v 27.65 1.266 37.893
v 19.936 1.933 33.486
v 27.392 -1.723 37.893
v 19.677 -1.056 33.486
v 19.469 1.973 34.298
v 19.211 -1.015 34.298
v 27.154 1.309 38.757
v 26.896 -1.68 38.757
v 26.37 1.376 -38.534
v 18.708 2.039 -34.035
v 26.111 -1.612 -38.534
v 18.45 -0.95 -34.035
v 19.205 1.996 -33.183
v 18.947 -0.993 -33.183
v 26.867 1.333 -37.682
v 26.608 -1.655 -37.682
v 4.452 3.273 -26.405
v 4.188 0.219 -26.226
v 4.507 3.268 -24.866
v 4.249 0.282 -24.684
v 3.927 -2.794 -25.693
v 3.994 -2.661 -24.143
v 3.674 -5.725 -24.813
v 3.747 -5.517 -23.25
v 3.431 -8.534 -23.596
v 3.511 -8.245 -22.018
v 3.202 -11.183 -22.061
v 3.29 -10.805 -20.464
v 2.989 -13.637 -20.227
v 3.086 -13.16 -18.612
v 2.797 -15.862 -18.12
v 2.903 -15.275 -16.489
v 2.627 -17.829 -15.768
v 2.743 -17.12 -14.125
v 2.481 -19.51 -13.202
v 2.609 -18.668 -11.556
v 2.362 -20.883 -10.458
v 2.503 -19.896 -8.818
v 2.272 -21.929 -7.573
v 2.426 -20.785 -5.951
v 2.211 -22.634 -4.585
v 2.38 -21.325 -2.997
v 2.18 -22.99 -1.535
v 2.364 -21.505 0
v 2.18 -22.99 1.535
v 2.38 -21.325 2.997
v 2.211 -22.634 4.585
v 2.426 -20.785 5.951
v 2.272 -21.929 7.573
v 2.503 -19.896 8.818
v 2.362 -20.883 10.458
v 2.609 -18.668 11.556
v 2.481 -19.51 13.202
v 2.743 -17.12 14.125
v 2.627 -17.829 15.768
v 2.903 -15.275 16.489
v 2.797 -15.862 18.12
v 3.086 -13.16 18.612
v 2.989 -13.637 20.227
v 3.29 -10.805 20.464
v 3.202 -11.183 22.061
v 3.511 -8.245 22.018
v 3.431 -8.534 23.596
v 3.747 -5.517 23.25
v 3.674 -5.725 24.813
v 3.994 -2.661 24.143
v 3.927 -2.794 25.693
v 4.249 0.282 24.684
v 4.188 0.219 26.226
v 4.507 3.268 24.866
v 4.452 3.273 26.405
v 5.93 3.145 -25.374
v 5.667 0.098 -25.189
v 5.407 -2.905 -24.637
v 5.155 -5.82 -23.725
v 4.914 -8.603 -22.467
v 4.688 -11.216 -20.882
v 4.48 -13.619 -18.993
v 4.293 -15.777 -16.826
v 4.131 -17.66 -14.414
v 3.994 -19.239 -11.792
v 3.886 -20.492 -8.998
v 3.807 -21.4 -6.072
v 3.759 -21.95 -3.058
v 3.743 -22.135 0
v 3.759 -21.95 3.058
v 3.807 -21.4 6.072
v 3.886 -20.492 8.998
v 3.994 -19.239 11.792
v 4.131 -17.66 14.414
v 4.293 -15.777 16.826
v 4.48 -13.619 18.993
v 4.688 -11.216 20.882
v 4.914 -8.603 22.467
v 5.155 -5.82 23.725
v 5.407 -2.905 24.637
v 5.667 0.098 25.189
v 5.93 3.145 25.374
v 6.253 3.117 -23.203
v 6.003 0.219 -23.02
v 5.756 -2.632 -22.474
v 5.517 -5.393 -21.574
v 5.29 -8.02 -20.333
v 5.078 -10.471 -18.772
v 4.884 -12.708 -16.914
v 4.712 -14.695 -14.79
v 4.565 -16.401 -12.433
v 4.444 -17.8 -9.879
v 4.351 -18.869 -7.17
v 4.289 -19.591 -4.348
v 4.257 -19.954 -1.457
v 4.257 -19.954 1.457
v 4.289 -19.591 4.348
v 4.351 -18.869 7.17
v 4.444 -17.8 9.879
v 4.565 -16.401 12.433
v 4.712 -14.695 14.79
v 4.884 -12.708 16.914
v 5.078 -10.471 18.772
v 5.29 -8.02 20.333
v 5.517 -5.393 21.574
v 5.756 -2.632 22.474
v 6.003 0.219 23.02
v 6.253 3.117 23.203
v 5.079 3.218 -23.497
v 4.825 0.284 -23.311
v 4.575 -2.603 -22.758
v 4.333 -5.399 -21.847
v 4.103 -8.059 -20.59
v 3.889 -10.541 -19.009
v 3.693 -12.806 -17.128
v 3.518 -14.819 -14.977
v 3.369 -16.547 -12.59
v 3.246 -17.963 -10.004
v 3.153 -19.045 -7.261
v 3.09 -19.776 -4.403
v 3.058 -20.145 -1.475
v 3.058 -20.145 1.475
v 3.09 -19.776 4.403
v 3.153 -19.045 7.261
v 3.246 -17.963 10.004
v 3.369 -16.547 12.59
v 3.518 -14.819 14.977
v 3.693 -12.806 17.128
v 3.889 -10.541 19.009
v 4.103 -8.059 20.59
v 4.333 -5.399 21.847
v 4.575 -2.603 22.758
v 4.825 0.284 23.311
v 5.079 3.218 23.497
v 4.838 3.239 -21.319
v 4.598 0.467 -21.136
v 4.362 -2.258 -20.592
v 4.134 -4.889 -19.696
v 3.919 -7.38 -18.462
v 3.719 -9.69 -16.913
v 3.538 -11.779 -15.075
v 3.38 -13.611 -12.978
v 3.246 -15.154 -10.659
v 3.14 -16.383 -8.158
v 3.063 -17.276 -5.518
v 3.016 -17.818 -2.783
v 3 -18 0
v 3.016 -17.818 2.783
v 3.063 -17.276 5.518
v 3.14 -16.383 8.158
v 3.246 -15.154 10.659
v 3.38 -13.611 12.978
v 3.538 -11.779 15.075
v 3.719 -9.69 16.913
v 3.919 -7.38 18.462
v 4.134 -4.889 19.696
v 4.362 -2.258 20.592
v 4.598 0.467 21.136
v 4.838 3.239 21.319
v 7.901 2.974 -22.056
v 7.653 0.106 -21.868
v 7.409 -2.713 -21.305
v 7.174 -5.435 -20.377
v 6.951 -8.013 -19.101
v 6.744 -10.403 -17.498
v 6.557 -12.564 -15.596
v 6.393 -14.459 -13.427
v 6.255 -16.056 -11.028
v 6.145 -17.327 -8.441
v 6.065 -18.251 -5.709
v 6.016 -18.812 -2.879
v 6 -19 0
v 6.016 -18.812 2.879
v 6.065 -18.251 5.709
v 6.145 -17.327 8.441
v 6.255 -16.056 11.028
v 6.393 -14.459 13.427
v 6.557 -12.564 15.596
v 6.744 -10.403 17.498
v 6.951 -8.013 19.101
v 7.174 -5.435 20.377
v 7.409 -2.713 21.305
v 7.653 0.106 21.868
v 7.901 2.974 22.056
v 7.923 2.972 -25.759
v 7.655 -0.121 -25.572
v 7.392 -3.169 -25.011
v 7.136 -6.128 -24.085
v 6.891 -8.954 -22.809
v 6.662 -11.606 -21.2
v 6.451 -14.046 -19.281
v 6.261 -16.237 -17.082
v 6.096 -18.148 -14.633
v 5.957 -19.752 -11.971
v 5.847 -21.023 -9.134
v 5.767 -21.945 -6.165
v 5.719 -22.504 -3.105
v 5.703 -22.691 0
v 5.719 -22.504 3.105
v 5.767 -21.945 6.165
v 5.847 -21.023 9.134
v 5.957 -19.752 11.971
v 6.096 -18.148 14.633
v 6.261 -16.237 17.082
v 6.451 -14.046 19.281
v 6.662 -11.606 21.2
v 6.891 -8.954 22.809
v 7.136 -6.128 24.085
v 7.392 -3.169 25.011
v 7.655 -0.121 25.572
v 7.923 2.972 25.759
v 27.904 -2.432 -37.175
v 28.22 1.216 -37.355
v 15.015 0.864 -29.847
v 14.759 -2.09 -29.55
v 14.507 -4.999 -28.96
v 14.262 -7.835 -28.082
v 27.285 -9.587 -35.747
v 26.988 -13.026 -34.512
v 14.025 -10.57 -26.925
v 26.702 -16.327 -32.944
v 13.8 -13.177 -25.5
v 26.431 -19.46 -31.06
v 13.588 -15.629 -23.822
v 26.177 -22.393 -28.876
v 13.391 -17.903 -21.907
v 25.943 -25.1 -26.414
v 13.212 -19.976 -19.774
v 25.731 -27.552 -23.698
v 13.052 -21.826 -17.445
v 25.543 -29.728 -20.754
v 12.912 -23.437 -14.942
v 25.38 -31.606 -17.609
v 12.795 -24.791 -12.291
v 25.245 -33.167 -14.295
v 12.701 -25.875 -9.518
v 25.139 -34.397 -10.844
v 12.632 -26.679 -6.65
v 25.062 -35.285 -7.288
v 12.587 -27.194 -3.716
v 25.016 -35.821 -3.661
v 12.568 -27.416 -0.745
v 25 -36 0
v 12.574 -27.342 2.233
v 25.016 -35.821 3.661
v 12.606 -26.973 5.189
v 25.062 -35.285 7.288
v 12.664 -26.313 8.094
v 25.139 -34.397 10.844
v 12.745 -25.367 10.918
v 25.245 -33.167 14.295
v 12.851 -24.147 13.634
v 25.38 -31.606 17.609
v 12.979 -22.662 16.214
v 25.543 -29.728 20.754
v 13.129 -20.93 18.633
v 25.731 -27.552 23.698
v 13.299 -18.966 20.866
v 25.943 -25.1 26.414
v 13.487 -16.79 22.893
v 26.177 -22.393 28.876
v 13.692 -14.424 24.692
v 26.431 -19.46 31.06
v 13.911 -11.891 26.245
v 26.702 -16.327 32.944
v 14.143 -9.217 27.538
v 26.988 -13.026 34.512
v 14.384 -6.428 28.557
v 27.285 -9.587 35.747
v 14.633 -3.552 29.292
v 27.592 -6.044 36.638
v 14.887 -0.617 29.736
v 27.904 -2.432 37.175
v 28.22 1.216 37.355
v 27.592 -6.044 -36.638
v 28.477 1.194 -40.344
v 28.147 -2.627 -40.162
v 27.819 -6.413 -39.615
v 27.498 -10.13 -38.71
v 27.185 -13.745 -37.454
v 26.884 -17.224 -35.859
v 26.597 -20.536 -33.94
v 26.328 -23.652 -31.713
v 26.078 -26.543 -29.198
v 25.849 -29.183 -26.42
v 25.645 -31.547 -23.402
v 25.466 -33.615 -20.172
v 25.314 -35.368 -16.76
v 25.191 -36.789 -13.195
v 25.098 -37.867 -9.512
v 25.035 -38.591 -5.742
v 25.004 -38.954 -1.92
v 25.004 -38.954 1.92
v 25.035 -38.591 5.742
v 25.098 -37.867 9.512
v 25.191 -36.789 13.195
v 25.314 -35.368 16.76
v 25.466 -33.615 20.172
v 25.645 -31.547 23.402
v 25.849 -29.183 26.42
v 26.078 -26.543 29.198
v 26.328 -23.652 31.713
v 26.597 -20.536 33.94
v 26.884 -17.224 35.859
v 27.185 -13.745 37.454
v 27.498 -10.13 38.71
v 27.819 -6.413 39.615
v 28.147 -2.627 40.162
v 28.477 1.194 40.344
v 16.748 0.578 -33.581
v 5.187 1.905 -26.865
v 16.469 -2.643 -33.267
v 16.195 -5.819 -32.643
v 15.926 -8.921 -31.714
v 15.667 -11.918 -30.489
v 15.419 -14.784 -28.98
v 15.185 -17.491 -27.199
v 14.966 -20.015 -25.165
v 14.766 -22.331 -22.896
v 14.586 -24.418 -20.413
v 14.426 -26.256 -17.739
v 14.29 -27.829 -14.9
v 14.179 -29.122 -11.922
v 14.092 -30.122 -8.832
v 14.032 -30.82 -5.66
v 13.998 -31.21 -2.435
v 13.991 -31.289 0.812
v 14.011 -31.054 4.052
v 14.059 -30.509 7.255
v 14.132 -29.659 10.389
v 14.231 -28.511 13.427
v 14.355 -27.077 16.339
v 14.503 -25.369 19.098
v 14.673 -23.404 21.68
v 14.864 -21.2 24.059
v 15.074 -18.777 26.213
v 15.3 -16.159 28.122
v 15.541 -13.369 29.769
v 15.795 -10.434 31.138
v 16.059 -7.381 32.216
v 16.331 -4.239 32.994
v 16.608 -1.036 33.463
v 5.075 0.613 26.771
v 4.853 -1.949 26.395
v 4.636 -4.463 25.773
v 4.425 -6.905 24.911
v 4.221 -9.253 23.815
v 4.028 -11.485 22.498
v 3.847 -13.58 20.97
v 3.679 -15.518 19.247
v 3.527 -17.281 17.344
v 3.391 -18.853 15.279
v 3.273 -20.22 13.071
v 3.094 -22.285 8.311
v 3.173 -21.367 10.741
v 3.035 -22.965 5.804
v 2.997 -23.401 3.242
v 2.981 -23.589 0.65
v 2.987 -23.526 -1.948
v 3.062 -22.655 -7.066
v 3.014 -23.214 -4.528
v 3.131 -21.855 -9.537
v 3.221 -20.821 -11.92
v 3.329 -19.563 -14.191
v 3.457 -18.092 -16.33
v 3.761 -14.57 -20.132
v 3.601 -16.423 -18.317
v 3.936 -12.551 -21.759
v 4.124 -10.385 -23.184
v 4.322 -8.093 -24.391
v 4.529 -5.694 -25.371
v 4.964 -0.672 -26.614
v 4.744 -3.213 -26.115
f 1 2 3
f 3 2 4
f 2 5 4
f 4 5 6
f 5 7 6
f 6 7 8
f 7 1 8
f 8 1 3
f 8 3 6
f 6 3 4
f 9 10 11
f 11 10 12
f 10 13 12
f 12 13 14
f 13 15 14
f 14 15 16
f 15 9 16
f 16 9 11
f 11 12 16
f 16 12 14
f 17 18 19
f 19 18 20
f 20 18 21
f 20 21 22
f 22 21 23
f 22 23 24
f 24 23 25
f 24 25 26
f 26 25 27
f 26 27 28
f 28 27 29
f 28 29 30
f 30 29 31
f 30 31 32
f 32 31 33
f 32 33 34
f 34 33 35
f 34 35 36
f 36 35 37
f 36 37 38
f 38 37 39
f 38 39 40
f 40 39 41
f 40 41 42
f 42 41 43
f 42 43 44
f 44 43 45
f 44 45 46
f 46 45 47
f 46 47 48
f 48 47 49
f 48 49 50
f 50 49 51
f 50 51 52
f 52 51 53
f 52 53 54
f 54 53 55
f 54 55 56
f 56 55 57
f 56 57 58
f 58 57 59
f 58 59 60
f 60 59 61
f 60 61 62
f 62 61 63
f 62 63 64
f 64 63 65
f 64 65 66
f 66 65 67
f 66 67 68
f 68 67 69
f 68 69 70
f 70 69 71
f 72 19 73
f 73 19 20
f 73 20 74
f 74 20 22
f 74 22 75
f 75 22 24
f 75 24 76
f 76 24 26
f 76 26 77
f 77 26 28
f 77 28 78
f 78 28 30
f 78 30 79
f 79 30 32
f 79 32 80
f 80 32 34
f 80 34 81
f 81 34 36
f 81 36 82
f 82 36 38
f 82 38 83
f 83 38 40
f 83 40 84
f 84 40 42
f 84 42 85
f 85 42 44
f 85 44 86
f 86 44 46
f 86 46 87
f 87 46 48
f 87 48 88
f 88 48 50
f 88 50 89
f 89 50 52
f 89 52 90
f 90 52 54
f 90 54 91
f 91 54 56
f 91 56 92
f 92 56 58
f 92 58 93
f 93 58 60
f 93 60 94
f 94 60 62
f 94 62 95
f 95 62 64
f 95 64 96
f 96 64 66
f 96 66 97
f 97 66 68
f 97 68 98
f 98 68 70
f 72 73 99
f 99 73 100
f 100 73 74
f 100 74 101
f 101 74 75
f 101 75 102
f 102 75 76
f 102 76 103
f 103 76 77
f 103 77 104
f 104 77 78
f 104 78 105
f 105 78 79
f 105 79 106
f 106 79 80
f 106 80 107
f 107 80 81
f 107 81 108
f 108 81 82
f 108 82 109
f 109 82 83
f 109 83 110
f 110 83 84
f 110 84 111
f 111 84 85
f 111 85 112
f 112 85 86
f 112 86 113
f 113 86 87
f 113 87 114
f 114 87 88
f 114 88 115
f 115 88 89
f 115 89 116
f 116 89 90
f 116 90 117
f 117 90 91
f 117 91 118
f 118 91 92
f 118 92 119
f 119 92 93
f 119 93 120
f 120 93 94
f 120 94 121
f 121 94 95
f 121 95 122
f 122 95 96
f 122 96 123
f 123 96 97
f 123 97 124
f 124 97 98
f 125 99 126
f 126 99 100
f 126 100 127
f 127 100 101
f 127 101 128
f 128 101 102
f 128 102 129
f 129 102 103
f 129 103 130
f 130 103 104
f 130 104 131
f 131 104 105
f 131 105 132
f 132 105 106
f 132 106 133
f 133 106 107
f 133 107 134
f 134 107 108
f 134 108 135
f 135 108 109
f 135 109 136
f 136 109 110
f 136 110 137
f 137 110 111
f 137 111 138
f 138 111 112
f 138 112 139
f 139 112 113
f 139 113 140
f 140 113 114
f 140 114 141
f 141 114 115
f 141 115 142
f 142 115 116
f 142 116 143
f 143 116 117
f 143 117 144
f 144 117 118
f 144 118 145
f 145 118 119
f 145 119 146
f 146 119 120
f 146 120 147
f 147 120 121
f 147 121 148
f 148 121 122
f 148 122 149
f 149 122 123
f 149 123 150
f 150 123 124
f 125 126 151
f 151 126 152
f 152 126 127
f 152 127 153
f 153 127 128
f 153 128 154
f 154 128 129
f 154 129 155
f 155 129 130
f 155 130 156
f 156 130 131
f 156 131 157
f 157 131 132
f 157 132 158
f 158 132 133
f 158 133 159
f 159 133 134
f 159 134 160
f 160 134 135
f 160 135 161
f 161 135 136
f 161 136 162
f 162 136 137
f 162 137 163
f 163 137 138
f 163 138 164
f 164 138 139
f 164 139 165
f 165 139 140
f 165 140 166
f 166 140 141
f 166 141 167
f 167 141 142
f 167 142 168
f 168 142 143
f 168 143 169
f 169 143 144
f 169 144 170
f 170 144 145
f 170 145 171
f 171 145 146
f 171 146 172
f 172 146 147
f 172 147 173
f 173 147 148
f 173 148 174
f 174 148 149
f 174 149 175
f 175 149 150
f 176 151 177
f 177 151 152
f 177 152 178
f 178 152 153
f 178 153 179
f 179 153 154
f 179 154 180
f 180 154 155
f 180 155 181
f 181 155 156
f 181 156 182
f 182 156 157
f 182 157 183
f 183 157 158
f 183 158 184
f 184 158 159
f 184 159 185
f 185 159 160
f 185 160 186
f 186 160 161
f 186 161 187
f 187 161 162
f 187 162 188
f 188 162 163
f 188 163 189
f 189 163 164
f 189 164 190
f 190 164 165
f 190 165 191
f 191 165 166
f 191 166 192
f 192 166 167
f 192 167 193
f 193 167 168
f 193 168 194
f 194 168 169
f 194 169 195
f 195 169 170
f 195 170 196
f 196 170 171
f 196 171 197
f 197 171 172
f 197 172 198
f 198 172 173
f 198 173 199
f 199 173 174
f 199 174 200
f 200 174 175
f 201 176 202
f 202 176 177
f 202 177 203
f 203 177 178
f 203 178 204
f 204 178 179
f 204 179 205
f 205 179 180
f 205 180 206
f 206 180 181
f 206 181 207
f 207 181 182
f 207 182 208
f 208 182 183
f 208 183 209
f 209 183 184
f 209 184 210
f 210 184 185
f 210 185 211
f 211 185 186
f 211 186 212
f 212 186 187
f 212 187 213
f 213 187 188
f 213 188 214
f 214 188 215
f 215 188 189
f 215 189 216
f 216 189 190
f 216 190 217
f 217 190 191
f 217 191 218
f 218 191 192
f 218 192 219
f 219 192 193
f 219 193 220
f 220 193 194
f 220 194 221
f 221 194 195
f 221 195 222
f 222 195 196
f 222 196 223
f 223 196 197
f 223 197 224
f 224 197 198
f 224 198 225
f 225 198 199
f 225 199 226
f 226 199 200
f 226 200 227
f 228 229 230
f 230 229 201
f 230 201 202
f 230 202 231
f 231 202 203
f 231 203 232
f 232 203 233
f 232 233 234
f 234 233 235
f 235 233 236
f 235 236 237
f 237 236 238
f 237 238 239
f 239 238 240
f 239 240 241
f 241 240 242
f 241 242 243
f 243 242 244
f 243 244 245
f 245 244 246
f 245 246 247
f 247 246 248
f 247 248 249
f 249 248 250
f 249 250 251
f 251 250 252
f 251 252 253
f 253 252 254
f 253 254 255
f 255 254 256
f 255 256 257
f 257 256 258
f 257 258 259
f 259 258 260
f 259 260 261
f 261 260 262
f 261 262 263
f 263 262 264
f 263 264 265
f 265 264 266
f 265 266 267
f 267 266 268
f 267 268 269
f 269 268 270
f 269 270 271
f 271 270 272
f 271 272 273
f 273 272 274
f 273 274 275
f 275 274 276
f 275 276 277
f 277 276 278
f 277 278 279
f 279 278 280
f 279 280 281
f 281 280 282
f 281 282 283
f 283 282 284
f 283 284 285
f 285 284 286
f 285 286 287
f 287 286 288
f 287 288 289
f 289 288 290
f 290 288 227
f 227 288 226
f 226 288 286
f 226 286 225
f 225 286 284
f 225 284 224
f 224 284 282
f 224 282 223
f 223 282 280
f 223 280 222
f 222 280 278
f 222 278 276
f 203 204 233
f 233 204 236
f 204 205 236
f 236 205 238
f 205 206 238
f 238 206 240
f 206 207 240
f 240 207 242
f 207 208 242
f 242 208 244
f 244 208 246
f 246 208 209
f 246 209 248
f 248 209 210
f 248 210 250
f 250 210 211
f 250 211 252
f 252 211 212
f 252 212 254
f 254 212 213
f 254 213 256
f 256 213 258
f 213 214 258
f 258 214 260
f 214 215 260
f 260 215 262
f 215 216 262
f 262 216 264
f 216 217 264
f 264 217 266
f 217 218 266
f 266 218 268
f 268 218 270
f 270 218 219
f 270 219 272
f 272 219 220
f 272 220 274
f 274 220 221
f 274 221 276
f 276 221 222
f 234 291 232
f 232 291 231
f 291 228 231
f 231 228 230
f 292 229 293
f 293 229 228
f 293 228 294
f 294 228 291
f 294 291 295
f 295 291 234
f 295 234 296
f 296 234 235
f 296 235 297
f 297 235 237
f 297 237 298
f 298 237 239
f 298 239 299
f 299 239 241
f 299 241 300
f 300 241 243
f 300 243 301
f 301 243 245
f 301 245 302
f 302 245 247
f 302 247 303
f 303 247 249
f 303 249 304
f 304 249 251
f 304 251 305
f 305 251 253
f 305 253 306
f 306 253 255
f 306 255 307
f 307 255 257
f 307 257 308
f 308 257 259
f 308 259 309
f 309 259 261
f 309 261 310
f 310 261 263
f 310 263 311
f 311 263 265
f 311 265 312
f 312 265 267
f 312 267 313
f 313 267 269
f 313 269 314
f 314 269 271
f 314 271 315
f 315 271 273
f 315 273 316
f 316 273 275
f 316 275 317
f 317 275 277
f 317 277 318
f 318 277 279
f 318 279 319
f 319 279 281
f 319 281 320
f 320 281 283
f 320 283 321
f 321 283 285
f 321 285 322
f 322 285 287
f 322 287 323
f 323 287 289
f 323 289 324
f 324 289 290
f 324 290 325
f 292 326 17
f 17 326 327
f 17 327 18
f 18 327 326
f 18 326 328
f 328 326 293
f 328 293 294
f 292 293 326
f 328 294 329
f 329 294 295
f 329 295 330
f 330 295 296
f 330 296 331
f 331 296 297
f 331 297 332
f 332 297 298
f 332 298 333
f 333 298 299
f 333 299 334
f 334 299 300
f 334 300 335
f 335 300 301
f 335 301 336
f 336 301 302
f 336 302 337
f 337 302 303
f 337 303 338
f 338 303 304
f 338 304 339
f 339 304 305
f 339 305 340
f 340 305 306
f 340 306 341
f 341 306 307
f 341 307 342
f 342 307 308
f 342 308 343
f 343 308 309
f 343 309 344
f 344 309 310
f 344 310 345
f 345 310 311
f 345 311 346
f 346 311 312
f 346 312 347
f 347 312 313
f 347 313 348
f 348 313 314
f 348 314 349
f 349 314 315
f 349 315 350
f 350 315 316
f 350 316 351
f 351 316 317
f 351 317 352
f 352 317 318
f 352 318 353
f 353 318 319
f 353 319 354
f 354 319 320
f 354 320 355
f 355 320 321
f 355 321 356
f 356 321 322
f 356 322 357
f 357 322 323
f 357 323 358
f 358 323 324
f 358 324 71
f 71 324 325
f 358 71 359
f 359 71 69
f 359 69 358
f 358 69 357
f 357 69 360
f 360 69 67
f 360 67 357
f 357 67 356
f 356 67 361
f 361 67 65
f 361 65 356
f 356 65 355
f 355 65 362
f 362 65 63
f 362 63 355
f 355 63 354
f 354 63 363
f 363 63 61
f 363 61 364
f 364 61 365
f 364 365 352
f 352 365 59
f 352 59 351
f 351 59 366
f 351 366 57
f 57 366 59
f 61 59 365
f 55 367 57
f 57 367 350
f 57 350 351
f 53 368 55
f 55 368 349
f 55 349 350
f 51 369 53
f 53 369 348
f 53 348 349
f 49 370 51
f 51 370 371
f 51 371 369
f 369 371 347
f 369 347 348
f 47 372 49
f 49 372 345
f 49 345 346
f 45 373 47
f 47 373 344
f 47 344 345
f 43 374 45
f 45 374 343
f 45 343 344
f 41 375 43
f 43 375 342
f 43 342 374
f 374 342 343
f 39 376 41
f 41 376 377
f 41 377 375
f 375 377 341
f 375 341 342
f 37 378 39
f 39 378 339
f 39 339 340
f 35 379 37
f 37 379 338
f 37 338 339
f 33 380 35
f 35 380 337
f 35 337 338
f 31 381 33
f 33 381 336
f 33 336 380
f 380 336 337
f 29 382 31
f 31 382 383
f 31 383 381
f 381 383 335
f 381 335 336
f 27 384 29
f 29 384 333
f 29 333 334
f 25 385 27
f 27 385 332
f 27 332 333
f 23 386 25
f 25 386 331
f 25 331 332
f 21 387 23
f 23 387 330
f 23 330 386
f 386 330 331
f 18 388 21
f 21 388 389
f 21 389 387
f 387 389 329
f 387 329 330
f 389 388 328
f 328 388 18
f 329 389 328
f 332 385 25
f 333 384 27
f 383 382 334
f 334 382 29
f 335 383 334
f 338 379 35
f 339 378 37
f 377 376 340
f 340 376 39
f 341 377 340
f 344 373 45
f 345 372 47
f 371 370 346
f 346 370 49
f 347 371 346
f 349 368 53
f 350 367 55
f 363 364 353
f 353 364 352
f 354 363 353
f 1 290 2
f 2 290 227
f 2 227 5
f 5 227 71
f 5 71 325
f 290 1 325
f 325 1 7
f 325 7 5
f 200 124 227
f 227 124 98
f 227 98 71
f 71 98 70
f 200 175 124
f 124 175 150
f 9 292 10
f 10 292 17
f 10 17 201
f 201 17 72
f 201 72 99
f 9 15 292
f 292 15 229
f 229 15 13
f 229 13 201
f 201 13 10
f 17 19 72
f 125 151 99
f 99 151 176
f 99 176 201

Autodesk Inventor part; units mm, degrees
ref_plane "YZ Plane" through (0, 0, 0) normal (1, 0, 0) x (0, 1, 0)
ref_plane "XZ Plane" through (0, 0, 0) normal (0, 1, 0) x (-1, 0, 0)
ref_plane "XY Plane" through (0, 0, 0) normal (0, 0, 1) x (1, 0, 0)
sketch "Sketch1" plane through (0, 0, 0) normal (1, 0, 0) x (0, 1, 0)
  arc A0 (6, 5) -> (0, 6.4776) centre (1.5083, -0.3184) ccw
  arc A1 (0, 6.4776) -> (-6, 2) centre (-0.0372, 0.2686) ccw
  arc A2 (-6, 2) -> (-5, -3.4628) centre (-1.5043, 0) ccw
  arc A3 (-5, -3.4628) -> (2, -5.5969) centre (1.6627, 5.8444) ccw
  arc A4 (2, -5.5969) -> (6.9353, -3.4628) centre (1.5482, 2.2219) ccw
  arc A5 (6, 5) -> (13, 1) centre (22.0402, 24.9454) ccw
  arc A6 (13, -1) -> (6.9353, -3.4628) centre (16.5953, -18.5517) ccw
  arc A7 (13, -1) -> (13, 1) centre (11.912, 0) ccw
  arc A8 (15.1251, -1.2068) -> (15.1251, 1.1192) centre (13.8597, -0.0438) ccw
  arc A9 (6.9841, 5.7712) -> (15.1251, 1.1192) centre (25.6388, 28.9677) ccw
  arc A10 (6.9841, 5.7712) -> (0.0061, 7.4897) centre (1.7602, -0.414) ccw
  arc A11 (0.0061, 7.4897) -> (-6.9719, 2.2822) centre (-0.0372, 0.2686) ccw
  arc A12 (-6.9719, 2.2822) -> (-5.8089, -4.0711) centre (-1.7435, -0.0438) ccw
  arc A13 (-5.8089, -4.0711) -> (2.3321, -6.5529) centre (1.9397, 6.7532) ccw
  arc A14 (2.3321, -6.5529) -> (8.0718, -4.0711) centre (1.8067, 2.5403) ccw
  arc A15 (15.1251, -1.2068) -> (8.0718, -4.0711) centre (19.3063, -21.6193) ccw
  point P0 (0, 0)
sketch "Sketch2" plane through (0, 0, 0) normal (0, 0, 1) x (1, 0, 0)
  arc A0 (4.5893, 15.6275) -> (5.3653, 12.7341) centre (8.4769, 15.1194) ccw
  arc A1 (7.1334, 6.0475) -> (5.3653, 12.7341) centre (-9.3019, 5.2787) ccw
  arc A2 (4, -1) -> (7.1334, 6.0475) centre (-2.3212, 6.0308) ccw
  arc A3 (4, -1) -> (2.2783, -7.605) centre (15.174, -7.4395) ccw
  arc A4 (4.5893, 15.6275) -> (-5.4042, 15.6275) centre (-0.4074, 13.9881) ccw
  arc A5 (-4.7137, -7.4395) -> (2.2783, -7.605) centre (-1.0169, 0.9638) ccw
  arc A6 (-5.4042, 15.6275) -> (-4.7137, -7.4395) centre (15.8945, 4.7212) ccw
  point P0 (0, 0)
  point P1 (16.0644, 6.0537)
sketch "Sketch3" plane through (0, 0, 0) normal (0, 0, 1) x (1, 0, 0)
  line L0 (8, 6) -> (8, -9.7213)
  line L1 (8, 6) -> (8, 19.0901)
  arc A0 (8, -9.7213) -> (8, 19.0901) centre (-3.1204, 4.6844) ccw
  point P0 (0, 0)
sketch "Sketch4" plane through (0, 0, 0) normal (0, 0, 1) x (1, 0, 0)
  arc A0 (4, -3) -> (3, -7.466) centre (10.199, -6.733) ccw
  arc A1 (4, -3) -> (7.6292, 3.7812) centre (-12.6955, 10.297) ccw
  arc A2 (7.6292, 3.7812) -> (7, 11) centre (-7.2238, 6.1234) ccw
  arc A3 (7, 11) -> (6.1482, 13) centre (-7.2238, 6.1234) ccw
  arc A4 (5.3976, 15.5783) -> (6.1482, 13) centre (8.6756, 15.1342) ccw
  arc A5 (3, -7.466) -> (9, -9) centre (8, -0.4104) ccw
  arc A6 (11, 18) -> (5.3976, 15.5783) centre (10.5, 11.4654) ccw
  arc A7 (9, -9) -> (11, 18) centre (-69.2967, 10.3738) ccw
  point P0 (0, 0)
sketch "Sketch5" plane through (0, 0, 0) normal (1, 0, 0) x (0, 1, 0)
  arc A0 (13, -1.7602) -> (13, 2.0171) centre (12.6189, 0.1284) ccw
  arc A1 (17, 0) -> (13, 2.0171) centre (12.9569, -3.0431) ccw
  arc A2 (13, -1.7602) -> (17, 0) centre (13.7728, 1.9087) ccw
  point P0 (0, 0)
sketch "Sketch7" plane through (0, 0, 0) normal (1, 0, 0) x (0, 1, 0)
  circle A0 centre (5, 0.3375) radius 25
  point P0 (0, 0)
  dimension "d10" = 50
sketch "Sketch8" plane through (0, 0, 0) normal (0, 0, 1) x (1, 0, 0)
  arc A0 (4.5893, 15.6275) -> (5.3653, 12.7341) centre (8.4769, 15.1194) ccw
  arc A1 (7.1334, 6.0475) -> (5.3653, 12.7341) centre (-9.3019, 5.2787) ccw
  arc A2 (4, -1) -> (7.1334, 6.0475) centre (-2.3212, 6.0308) ccw
  arc A3 (4, -1) -> (2.2783, -7.605) centre (15.174, -7.4395) ccw
  arc A4 (4.5893, 15.6275) -> (-5.4042, 15.6275) centre (-0.4074, 13.9881) ccw
  arc A5 (-4.7137, -7.4395) -> (2.2783, -7.605) centre (-1.0169, 0.9638) ccw
  arc A6 (-5.4042, 15.6275) -> (-4.7137, -7.4395) centre (15.8945, 4.7212) ccw
  point P0 (0, 0)
sketch "Sketch9" plane through (0, 0, 0) normal (0, 0, 1) x (1, 0, 0)
  line L0 (2.2936, -15.8564) -> (2.2936, -6.8564)
  arc A0 (2.2936, -6.8564) -> (-3.9962, -9.9765) centre (0.2723, -10.6815) ccw
  arc A1 (-4, -16) -> (2.2936, -15.8564) centre (-0.9465, -11.8394) ccw
  arc A2 (-3.9962, -9.9765) -> (-4, -16) centre (14.3076, -12.9998) ccw
  point P0 (0, 0)
sketch "Sketch10" plane through (0, 0, 0) normal (1, 0, 0) x (0, 1, 0)
  arc A0 (13, -1) -> (13, 1) centre (11.912, 0) ccw
  arc A1 (6, 5) -> (13, 1) centre (22.0402, 24.9454) ccw
  arc A2 (6, 5) -> (0, 6.4776) centre (1.5083, -0.3184) ccw
  arc A3 (0, 6.4776) -> (-6, 2) centre (-0.0372, 0.2686) ccw
  arc A4 (-6, 2) -> (-5, -3.4628) centre (-1.5043, 0) ccw
  arc A5 (-5, -3.4628) -> (2, -5.5969) centre (1.6627, 5.8444) ccw
  arc A6 (2, -5.5969) -> (6.9353, -3.4628) centre (1.5482, 2.2219) ccw
  arc A7 (13, -1) -> (6.9353, -3.4628) centre (16.5953, -18.5517) ccw
  point P0 (0, 0)
sketch "Sketch11" plane through (0, 0, 0) normal (0, 0, 1) x (1, 0, 0)
  arc A0 (4, -3) -> (3, -7.466) centre (10.199, -6.733) ccw
  arc A1 (4, -3) -> (7.6292, 3.7812) centre (-12.6955, 10.297) ccw
  arc A2 (7.6292, 3.7812) -> (7, 11) centre (-7.2238, 6.1234) ccw
  arc A3 (7, 11) -> (6.1482, 13) centre (-7.2238, 6.1234) ccw
  arc A4 (5.3976, 15.5783) -> (6.1482, 13) centre (8.6756, 15.1342) ccw
  arc A5 (11, -15) -> (11, 18) centre (-58.5, 1.5) ccw
  arc A6 (3, -7.466) -> (3.1376, -15) centre (85.1776, -9.733) ccw
  arc A7 (6, 24) -> (5.3976, 15.5783) centre (36.0186, 17.6203) ccw
  arc A8 (11, 18) -> (6, 24) centre (2.7033, 16.1694) ccw
  arc A9 (3.1376, -15) -> (11, -15) centre (7.0688, -10.5838) ccw
  arc A10 (5, 24) -> (4.5969, 15.5783) centre (45.756, 17.829) ccw
  arc A11 (-2, 19) -> (4.5969, 15.5783) centre (5.6189, 25.6189) ccw
  arc A12 (5, 24) -> (-2, 19) centre (11.5, 7.5) ccw
  point P0 (0, 0)
sketch "Sketch12" plane through (0, 0, 0) normal (1, 0, 0) x (0, 1, 0)
  circle A0 centre (3, 0.2318) radius 20
  circle A1 centre (3, 0.2318) radius 19
  point P0 (0, 0)
  dimension "d21" = 40
  dimension "d22" = 38
sketch "Sketch13" plane through (0, 0, 0) normal (0, 0, 1) x (1, 0, 0)
  arc A0 (4.6444, -3) -> (3.6444, -7.466) centre (10.8434, -6.733) ccw
  arc A1 (4.6444, -3) -> (8.2736, 3.7812) centre (-12.0511, 10.297) ccw
  arc A2 (8.2736, 3.7812) -> (7.6444, 11) centre (-6.5793, 6.1234) ccw
  arc A3 (7.6444, 11) -> (6.7926, 13) centre (-6.5793, 6.1234) ccw
  arc A4 (6.042, 15.5783) -> (6.7926, 13) centre (9.3201, 15.1342) ccw
  arc A5 (12.1446, -13.3563) -> (11.6094, 18.8213) centre (-67.1488, 1.418) ccw
  arc A6 (4.5893, 15.6275) -> (5.3653, 12.7341) centre (8.4769, 15.1194) ccw
  arc A7 (7.1334, 6.0475) -> (5.3653, 12.7341) centre (-9.3019, 5.2787) ccw
  arc A8 (4, -1) -> (7.1334, 6.0475) centre (-2.3212, 6.0308) ccw
  arc A9 (4, -1) -> (2.2783, -7.605) centre (15.174, -7.4395) ccw
  arc A10 (-5.4042, 15.6275) -> (-4.7137, -7.4395) centre (15.8945, 4.7212) ccw
  arc A11 (3.6444, -7.466) -> (4.6444, -19) centre (48.1921, -9.4141) ccw
  arc A12 (1, -17) -> (2.2783, -7.605) centre (-20.1318, -9.3402) ccw
  arc A13 (4.5893, 15.6275) -> (4, 28) centre (-90.183, 17.3138) ccw
  arc A14 (6.0097, 28) -> (6.042, 15.5783) centre (472.3708, 23) ccw
  arc A15 (4.6444, -19) -> (12.1446, -13.3563) centre (5.8088, -12.7419) ccw
  arc A16 (11.6094, 18.8213) -> (6.0097, 28) centre (-7.4499, 13.4913) ccw
  arc A17 (-4.7137, -7.4395) -> (1, -17) centre (32.2099, 8.14) ccw
  arc A18 (4, 28) -> (-5.4042, 15.6275) centre (39.2165, -8.5279) ccw
  point P0 (0, 0)
sketch "Sketch16" plane through (0, 0, 0) normal (0, 0, 1) x (1, 0, 0)
  arc A0 (7.7852, 10.9763) -> (6.9451, 12.9812) centre (-6.467, 6.1832) ccw
  arc A1 (8.372, 3.7539) -> (7.7852, 10.9763) centre (-6.467, 6.1832) ccw
  arc A2 (4.7031, -3.0059) -> (8.372, 3.7539) centre (-11.9141, 10.3888) ccw
  arc A3 (4.7031, -3.0059) -> (3.6769, -7.4659) centre (10.88, -6.7752) ccw
  arc A4 (6.2096, 15.5639) -> (6.9451, 12.9812) centre (9.485, 15.1006) ccw
  line L0 (3.6769, -7.4659) -> (3.6769, -13)
  line L1 (3.6769, -13) -> (8.7312, -13)
  line L2 (7.1813, -23) -> (8.45, -23) projected
  line L3 (6.2096, 15.5639) -> (6.0634, 19)
  line L4 (6.0634, 19) -> (8.7312, 19)
  line L5 (8.7312, 19) -> (8.7312, -13)
  point P0 (0, 0)
sketch "Sketch18" plane through (0, 0, 0) normal (0, 1, 0) x (-1, 0, 0)
  arc A0 (0, 16) -> (0, -16) centre (63, 0) ccw
  arc A1 (0, -16) -> (0, 16) centre (-1, 0) ccw
  point P0 (0, 0)
sketch "Sketch19" plane through (0, 0, 0) normal (0, 0, 1) x (1, 0, 0)
  arc A0 (0, -13) -> (0, 21.2939) centre (-44.6367, 4.1469) ccw
  arc A1 (0, 21.2939) -> (0, -13) centre (9.2646, 4.1469) ccw
  point P0 (0, 0)
sketch "Sketch20" plane through (0, 0, 0) normal (0, 1, 0) x (-1, 0, 0)
  arc A0 (0, 18) -> (0, -21) centre (116.9496, -1.5) ccw
  arc A1 (0, -21) -> (0, 18) centre (-188.5, -1.5) ccw
  point P0 (0, 0)
sketch "Sketch21" plane through (0, 0, 0) normal (0, 0, 1) x (1, 0, 0)
  arc A0 (4.5893, 15.6275) -> (5.3653, 12.7341) centre (8.4769, 15.1194) ccw
  arc A1 (7.1334, 6.0475) -> (5.3653, 12.7341) centre (-9.3019, 5.2787) ccw
  arc A2 (4, -1) -> (7.1334, 6.0475) centre (-2.3212, 6.0308) ccw
  arc A3 (4, -1) -> (2.2783, -7.605) centre (15.174, -7.4395) ccw
  arc A4 (-5.4042, 15.6275) -> (-4.7137, -7.4395) centre (15.8945, 4.7212) ccw
  arc A5 (1.6146, -47) -> (2.2783, -7.605) centre (-871.3055, -12.5889) ccw
  arc A6 (-4.7137, -7.4395) -> (1.6146, -47) centre (3.6662, -26.3854) ccw
  arc A7 (6.6047, 48.2766) -> (4.5893, 15.6275) centre (207.8183, 19.4692) ccw
  arc A8 (6.6047, 48.2766) -> (-5.4042, 15.6275) centre (18.1068, 25.5128) ccw
  point P0 (4.9602, 0)
sketch "Sketch22" plane through (0, 0, 0) normal (1, 0, 0) x (0, 1, 0)
  arc A0 (12.671, -1.508) -> (10.1452, -2.4415) centre (13.2273, -6.897) ccw
  arc A1 (5.972, -5.9193) -> (10.1452, -2.4415) centre (1.4729, 3.7221) ccw
  arc A2 (-1.0034, -7.134) -> (5.972, -5.9193) centre (0.0411, 7.5036) ccw
  arc A3 (-6.1623, -3.0965) -> (-1.0034, -7.134) centre (-0.5861, -1.2862) ccw
  arc A4 (-5.468, 3.7221) -> (-6.1623, -3.0965) centre (0.6002, -0.3405) ccw
  arc A5 (6.5632, 5.6579) -> (-0.5861, 6.5886) centre (1.6095, -4.4698) ccw
  arc A6 (-0.5861, 6.5886) -> (-5.468, 3.7221) centre (0, 0) ccw
  arc A7 (6.5632, 5.6579) -> (11.3492, 2.8919) centre (22.0985, 27.015) ccw
  arc A8 (14.2401, 1.3463) -> (11.3492, 2.8919) centre (11.1023, -1.0462) ccw
  arc A9 (13.4173, -1.2862) -> (14.2401, 1.3463) centre (12.4465, 0.462) ccw
  arc A10 (12.671, -1.508) -> (13.4173, -1.2862) centre (12.7302, -0.341) ccw
  point P0 (0, 0)
  point P1 (20.1069, -9.3097)
sketch "Sketch23" plane through (0, 0, 0) normal (0, 0, 1) x (1, 0, 0)
  arc A0 (4, -3) -> (3, -7.466) centre (10.199, -6.733) ccw
  arc A1 (4, -3) -> (7.6292, 3.7812) centre (-12.6955, 10.297) ccw
  arc A2 (7.6292, 3.7812) -> (7, 11) centre (-7.2238, 6.1234) ccw
  arc A3 (7, 11) -> (6.1482, 13) centre (-7.2238, 6.1234) ccw
  arc A4 (5.3976, 15.5783) -> (6.1482, 13) centre (8.6756, 15.1342) ccw
  arc A5 (3, -7.466) -> (12.0039, -34.009) centre (74.5087, 1.9925) ccw
  arc A6 (12.0039, -34.009) -> (12.0039, 40.009) centre (-50.8687, 3) ccw
  arc A7 (12.0039, 40.009) -> (5.3976, 15.5783) centre (75.5489, 9.7171) ccw
  point P0 (0, 0)
sketch "Sketch24" plane through (0, 0, 0) normal (1, 0, 0) x (0, 1, 0)
  circle A0 centre (4, 0) radius 24.0208
  circle A1 centre (4, 0) radius 54.037
  point P0 (0, 0)
sketch "Sketch25" plane through (0, 0, 0) normal (0, 0, 1) x (1, 0, 0)
  line L0 (2.9628, -6.7024) -> (3, -28)
  arc A0 (7, 36) -> (4.5756, 19.3965) centre (118.9772, 11.1705) ccw
  arc A1 (5.9839, 23.9235) -> (5.3976, 15.5783) centre (44.4323, 17.0293) ccw
  arc A2 (5.9839, 23.9235) -> (7, 33) centre (-89.9402, 39.2578) ccw
  arc A3 (5.3976, 15.5783) -> (7, 33) centre (-0.8843, 24.9407) ccw
  arc A4 (7, 36) -> (4.5756, 19.3965) centre (13.0884, 26.6322) ccw
  arc A5 (3, -28) -> (2.9628, -6.7024) centre (-3.3961, -17.3623) ccw
  point P0 (0, 0)
sketch "Sketch31" plane through (0, 0, 0) normal (1, 0, 0) x (0, 1, 0)
  circle A0 centre (4.1775, 0) radius 24.15
  circle A1 centre (4.1775, 0) radius 23
  point P0 (0, 0)
  dimension "d65" = 46
  dimension "d66" = 48.3
sketch "Sketch32" plane through (0, 0, 0) normal (0, 0, 1) x (1, 0, 0)
  arc A0 (4, -1) -> (2.2783, -7.605) centre (15.174, -7.4395) ccw
  arc A1 (4, -1) -> (7.1334, 6.0475) centre (-2.3212, 6.0308) ccw
  arc A2 (7.1334, 6.0475) -> (5.3653, 12.7341) centre (-9.3019, 5.2787) ccw
  arc A3 (4.5893, 15.6275) -> (5.3653, 12.7341) centre (8.4769, 15.1194) ccw
  arc A4 (-5.4042, 15.6275) -> (-4.7137, -7.4395) centre (15.8945, 4.7212) ccw
  arc A5 (1.6146, -47) -> (2.2783, -7.605) centre (-871.3055, -12.5889) ccw
  arc A6 (-4.7137, -7.4395) -> (1.6146, -47) centre (3.6662, -26.3854) ccw
  arc A7 (6.6047, 48.2766) -> (4.5893, 15.6275) centre (207.8183, 19.4692) ccw
  arc A8 (6.6047, 48.2766) -> (-5.4042, 15.6275) centre (18.1068, 25.5128) ccw
  point P0 (0, 0)
sketch "Sketch34" plane through (0, 0, 0) normal (0, 0, 1) x (1, 0, 0)
  arc A0 (5, -4) -> (9, 6) centre (-7, 6.6) ccw
  arc A1 (5, -4) -> (4, -8) centre (10.5, -7.5) ccw
  arc A2 (4, -19.9725) -> (4, -8) centre (-95.2669, -13.9862) ccw
  arc A3 (9, 6) -> (6.6308, 15) centre (-16.4523, 4.1118) ccw
  line L0 (6.6308, 15) -> (6.6308, 28.2457)
  arc A4 (4, -19.9725) -> (6.6308, 28.2457) centre (64.4177, 0.9119) ccw
  point P0 (0, 0)
sketch "Sketch35" plane through (0, 0, 0) normal (0, 0, 1) x (1, 0, 0)
  arc A0 (12, -8) -> (-7, -11) centre (15.0455, -88.9545) ccw
  arc A1 (-7, -11) -> (12, -8) centre (3.194, -13.8955) ccw
  point P0 (0, 0)
ref_plane "Work Plane16" through (6.6308, 4.1775, 0) normal (1, 0, 0) x (0, 0, -1)
sketch "Sketch36" plane through (6.6308, 4.1775, 0) normal (1, 0, 0) x (0, 0, -1)
  arc A0 (21.5893, 10.8225) -> (-21.5893, 10.8225) centre (0, -0.149) ccw
  arc A1 (20.2947, 10.8225) -> (-20.2947, 10.8225) centre (0, 0) ccw
  line L0 (-21.5893, 10.8225) -> (-20.2947, 10.8225)
  line L1 (-21.5893, 10.8225) -> (-20.2947, 10.8225)
  line L2 (20.2947, 10.8225) -> (21.5893, 10.8225)
  point P0 (0, -4.1775)
sketch "Sketch37" plane through (0, 0, 0) normal (1, 0, 0) x (0, 1, 0)
  arc A0 (15, 20.2947) -> (6, 22.9277) centre (4.1775, 0) ccw
  arc A1 (15, 21.5893) -> (6, 24.0811) centre (4.9955, 2.9543) ccw
  line L0 (15, 21.5893) -> (15, 20.2947)
  line L1 (15, 21.5893) -> (15, 20.2947)
  line L2 (6, 22.9277) -> (6, 24.0811)
  line L3 (6, 24.0811) -> (6, 22.9277)
  line L4 (15, -20.2947) -> (15, -21.5893) projected
  line L5 (15, -21.5351) -> (15, -20.2947)
  arc A2 (6, -24.0811) -> (15, -21.5893) centre (4.3914, -0.7727) ccw
  arc A3 (6, -22.9277) -> (15, -20.2947) centre (4.1775, 0) ccw
  line L6 (6, -24.0811) -> (6, -22.9277) projected
  line L7 (6, -24.0811) -> (6, -22.9277)
  point P0 (0, 0)
sketch "Sketch38" plane through (0, 0, 0) normal (0, 0, 1) x (1, 0, 0)
  arc A0 (7.1334, 6) -> (5.3972, 12.671) centre (-9.2641, 5.2939) ccw
  arc A1 (4.5581, 15) -> (5.3972, 12.671) centre (8.676, 15.1681) ccw
  line L0 (0, 15) -> (4.5581, 15) projected
  line L1 (0, 6) -> (7.1334, 6) projected
  arc A2 (4.5581, 15) -> (7.1334, 6) centre (1.4649, 9.2464) ccw
  point P0 (0, 0)
  point P1 (6.4152, 10.1452)
  point P2 (4.945, 13.4173)
sketch "Sketch39" plane through (0, 0, 0) normal (0, 0, 1) x (1, 0, 0)
  arc A0 (9, 6) -> (11.63, 15) centre (12.0023, 10.0069) ccw
  arc A1 (9, 6) -> (11.63, 15) centre (-3.4729, 14.5291) ccw
  point P0 (0, 0)
sketch "Sketch40" plane through (0, 0, 0) normal (0, 0, 1) x (1, 0, 0)
  arc A0 (1, -11) -> (5, -7) centre (4.0607, -10.0607) ccw
  arc A1 (5, -7) -> (1, -11) centre (6.5, -12.5) ccw
  point P0 (0, 0)
  point P1 (2.963, -6.7889)
sketch "Sketch41" plane through (0, 0, 0) normal (0, 0, 1) x (1, 0, 0)
  line L0 (26.7844, 11.2115) -> (14, 17)
  line L1 (14, 17) -> (1.6259, -10.3292)
  line L2 (1.6259, -10.3292) -> (14.4104, -16.1177)
  line L3 (14.4104, -16.1177) -> (26.7844, 11.2115)
  point P0 (0, 0)
  dimension "d87" = 30
ref_plane "Work Plane13" through (2.4677, -8.47, 20.5733) normal (0.911, -0.4125, 0) x (0, 0, -1)
sketch "Sketch43" plane through (2.4677, -8.47, 20.5733) normal (0.911, -0.4125, 0) x (0, 0, -1)
  line L0 (-2.3543, 15.8761) -> (-3.5078, 15.8761)
  line L1 (-3.5078, 15.8761) -> (-2.3543, 15.8761)
  arc A0 (-3.5078, 15.8761) -> (0.1198, -0.2516) centre (25.1927, 13.8599) ccw
  line L2 (1.4913, -0.2516) -> (0.1198, -0.2516)
  line L3 (0.1198, -0.2516) -> (1.4913, -0.2516)
  line L4 (-1.278, 5.6151) -> (14.6782, 5.6151) projected
  arc A1 (-2.3543, 15.8761) -> (1.4913, -0.2516) centre (22.6187, 13.3086) ccw
  point P0 (20.5733, 6.6981)
  point P1 (1.4551, -0.1819)
ref_plane "Work Plane14" through (2.964, -7.3739, 19.8888) normal (0.911, -0.4125, 0) x (0, 0, -1)
sketch "Sketch45" plane through (2.964, -7.3739, 19.8888) normal (0.911, -0.4125, 0) x (0, 0, -1)
  line L0 (43.9735, 14.6294) -> (42.8127, 14.6294)
  line L1 (42.8202, 14.6294) -> (43.9735, 14.6294) projected
  arc A0 (40.3423, -1.4549) -> (43.9735, 14.6294) centre (15.2518, 12.6615) ccw
  arc A1 (39, -1.4549) -> (42.8202, 14.6294) centre (15.5968, 12.5994) ccw
  line L2 (40.3423, -1.4549) -> (38.9708, -1.4549)
  line L3 (38.9708, -1.4549) -> (40.3423, -1.4549)
  point P0 (19.8888, 5.4949)
sketch "Sketch46" plane through (0, 0, 0) normal (0, 0, 1) x (1, 0, 0)
  arc A0 (8.9982, -11.6413) -> (8.9982, 28.2457) centre (46.0154, 8.3022) ccw
  line L0 (8.9982, 28.2457) -> (8.9982, -11.6413)
  point P0 (0, 0)
sketch "Sketch47" plane through (0, 0, 0) normal (0, 0, 1) x (1, 0, 0)
  line L0 (13.5135, 0) -> (-7.3337, 0)
  line L1 (2.3639, -20.2737) -> (9.0424, -23.2975) construction
  line L2 (2.3639, -20.2737) -> (9.0424, -23.2975)
  line L3 (9.0424, -23.2975) -> (9.0424, -24.2545)
  line L4 (9.0424, -24.2545) -> (2.3639, -21.2074)
  line L5 (2.3639, -21.2074) -> (2.3639, -20.2737)
  point P0 (0, 0)
sketch "Sketch48" plane through (0, 0, 0) normal (1, 0, 0) x (0, 1, 0)
  line L0 (-7.605, -19.7528) -> (-7.605, 19.6257)
  arc A0 (-7.605, 19.6257) -> (-7.605, -19.7528) centre (1.069, -0.0635) ccw
  point P0 (0, 0)
sketch "Sketch49" plane through (0, 0, 0) normal (0, 0, 1) x (1, 0, 0)
  line L0 (2.2936, -7.605) -> (2.2936, -6.8564) projected
  line L1 (2.2936, -6.8564) -> (2.2936, -25.2348)
  arc A0 (2.2936, -6.8564) -> (2.2936, -25.2348) centre (2.131, -16.0456) ccw
  point P0 (0, 0)
sketch "Sketch50" plane through (0, 0, 0) normal (0, 0, 1) x (1, 0, 0)
  arc A0 (3.3209, -23.1081) -> (8.9982, 5.953) centre (-195.8612, 30.8887) ccw
  arc A1 (3.3209, -23.1081) -> (3, 48) centre (19.245, 12.5186) ccw
  arc A2 (3, 48) -> (8, 28.2457) centre (151.9378, 75.1876) ccw
  line L0 (8.9982, -11.6413) -> (8.9982, 5.953) projected
  arc A3 (8.9982, 5.953) -> (8, 28.2457) centre (-139.412, 10.4765) ccw
  point P0 (0, 0)
  point P1 (8.9982, 6)
sketch "Sketch52" plane through (0, 0, 0) normal (1, 0, 0) x (0, 1, 0)
  line L0 (32, 0) -> (-26, 0)
  arc A0 (32, 0) -> (-26, 0) centre (3, 2.0806) ccw
  point P0 (0, 0)
sketch "Sketch53" plane through (0, 0, 0) normal (1, 0, 0) x (0, 1, 0)
  arc A0 (13, -1.4779) -> (13, 1.4779) centre (12.9444, 0) ccw
  arc A1 (13, 1.4779) -> (13, -1.4779) centre (15.3831, 0) ccw
  point P0 (0, 0)
sketch "Sketch55" plane through (0, 0, 0) normal (0, 0, 1) x (1, 0, 0)
  arc A0 (4.58, 19.7001) -> (6, 11) centre (32.9729, 19.8682) ccw
  arc A1 (4.58, 19.7001) -> (6, 11) centre (11.8372, 16.4186) ccw
  point P0 (0, 0)
ref_plane "Work Plane5" through (0, 0, 15) normal (0, 0, 1) x (1, 0, 0)
sketch "Sketch56" plane through (0, 0, 15) normal (0, 0, 1) x (1, 0, 0)
  arc A0 (6.4152, 10.1452) -> (4, 25) centre (-21.1275, 13.2908) ccw
  arc A1 (4, 25) -> (6.4152, 10.1452) centre (20.5376, 20.0651) ccw
  point P0 (0, 0)
ref_plane "Work Plane3" through (0, 0, 0) normal (0, 0, 1) x (1, 0, 0)
ref_plane "Work Plane6" through (0, 0, -15) normal (0, 0, 1) x (1, 0, 0)
sketch "Sketch57" plane through (0, 0, -15) normal (0, 0, 1) x (1, 0, 0)
  arc A0 (5.512, 20.9612) -> (4.7992, 23.1043) centre (-21.1275, 13.2908) ccw projected
  arc A1 (6.4152, 10.1452) -> (4.7992, 23.1043) centre (-21.1275, 13.2908) ccw
  arc A2 (4.7992, 23.1043) -> (6.4152, 10.1452) centre (4.6042, 16.4997) ccw
  point P0 (0, 0)
ref_plane "Work Plane7" through (0, 0, -15) normal (0, 0, 1) x (1, 0, 0)
sketch "Sketch58" plane through (0, 0, -15) normal (0, 0, 1) x (1, 0, 0)
  arc A0 (4.5821, 19.4868) -> (4.7951, 33.432) centre (-39.5171, 27.1347) ccw
  arc A1 (4.5821, 19.4868) -> (5.6499, 12.1459) centre (32.9729, 19.8682) ccw
  arc A2 (4.7951, 33.432) -> (5.6499, 12.1459) centre (19.8894, 23.3779) ccw
  point P0 (0, 0)
ref_plane "Work Plane8" through (0, 0, -15) normal (0, 0, 1) x (1, 0, 0)
sketch "Sketch59" plane through (0, 0, -15) normal (0, 0, 1) x (1, 0, 0)
  arc A0 (4.5821, 19.4868) -> (4.7951, 33.432) centre (-39.5171, 27.1347) ccw
  arc A1 (4.5821, 19.4868) -> (5.6499, 12.1459) centre (32.9729, 19.8682) ccw
  arc A2 (4.7951, 33.432) -> (5.6499, 12.1459) centre (19.8894, 23.3779) ccw
  point P0 (0, 0)
sketch "Sketch60" plane through (0, 0, 0) normal (1, 0, 0) x (0, 1, 0)
  line L0 (12.1111, 15) -> (12.1111, 21.5884)
  line L1 (12.1111, 21.5884) -> (12.1111, 15)
  line L2 (20.9612, 15.726) -> (20.9612, 15) projected
  line L3 (20.9612, 15) -> (20.9612, 15.726)
  arc A0 (20.9612, 15.726) -> (12.1111, 21.5884) centre (4.1775, 0) ccw
  line L4 (12.1111, -21.5884) -> (12.1111, -15)
  line L5 (12.1459, -15) -> (12.1111, -21.5884)
  line L6 (20.9612, -15) -> (20.9612, -15.726) projected
  line L7 (20.9612, -15) -> (20.9612, -15.726)
  arc A1 (12.1111, -21.5884) -> (20.9612, -15.726) centre (4.1775, 0) ccw
  line L8 (12.1111, 15) -> (12.1111, 21.5884) projected
  line L9 (22.5441, 15) -> (20.9612, 15) projected
  arc A2 (12.1111, 15) -> (20.9612, 15) centre (16.5362, 45.9173) ccw
  arc A3 (20.9612, -15) -> (12.1111, -15) centre (16.5362, -33.5759) ccw
  point P0 (0, 0)
ref_plane "Work Plane9" through (0, 0, -15) normal (0, 0, 1) x (1, 0, 0)
sketch "Sketch61" plane through (0, 0, -15) normal (0, 0, 1) x (1, 0, 0)
  line L0 (5.6658, 12.1111) -> (6.5691, 12.1111) projected
  line L1 (6.5691, 12.1111) -> (-0.1843, 12.1111)
  line L2 (5.512, 20.9612) -> (-0.1843, 20.9612)
  line L3 (0, 20.9612) -> (4.8126, 20.9612) projected
  arc A0 (-0.1843, 20.9612) -> (-0.1843, 12.1111) centre (11.2781, 16.5362) ccw
  line L4 (6.5691, 12.1111) -> (6.63, 12.1111) projected
  arc A1 (6.5691, 12.1111) -> (5.512, 20.9612) centre (-21.1275, 13.2908) ccw
  point P0 (0, 0)
ref_plane "Work Plane10" through (0, 0, -15) normal (0, 0, 1) x (1, 0, 0)
sketch "Sketch62" plane through (0, 0, -15) normal (0, 0, 1) x (1, 0, 0)
  line L0 (6.5691, 12.1111) -> (-0.1843, 12.1111)
  line L1 (5.512, 20.9612) -> (-0.1843, 20.9612)
  arc A0 (-0.1843, 20.9612) -> (-0.1843, 12.1111) centre (11.2781, 16.5362) ccw
  line L2 (4.8126, 20.9612) -> (5.512, 20.9612) projected
  arc A1 (5.512, 20.9612) -> (5.3976, 15.5783) centre (27.7821, 17.7954) ccw
  arc A2 (5.3976, 15.5783) -> (6.1482, 13) centre (8.4638, 15.0726) ccw
  line L3 (6.1482, 13) -> (6.5691, 12.1111)
  point P0 (0, 0)
  point P1 (0, 20.9612)
ref_plane "Work Plane12" through (0, 0, 15) normal (0, 0, 1) x (1, 0, 0)
sketch "Sketch65" plane through (0, 0, 15) normal (0, 0, 1) x (1, 0, 0)
  line L0 (0, 12.1111) -> (0, 20.9612)
  line L1 (0, 20.9612) -> (0, 12.1111)
  line L2 (0, 12.1111) -> (5.6659, 12.1111)
  line L3 (0, 12.1111) -> (0, 20.9612) projected
  line L4 (0, 20.9612) -> (4.8105, 20.9612)
  line L5 (0, 20.9612) -> (5.512, 20.9612) projected
  arc A0 (4.8126, 20.9612) -> (4.8105, 16.2544) centre (16.6683, 18.6025) ccw
  arc A1 (4.8105, 16.2544) -> (5.6659, 12.1111) centre (31.8657, 19.6806) ccw
  point P0 (0, 0)
ref_plane "Work Plane11" through (0, 0, 15) normal (0, 0, 1) x (1, 0, 0)
sketch "Sketch67" plane through (0, 0, 15) normal (0, 0, 1) x (1, 0, 0)
  line L0 (0, 12.1111) -> (5.6658, 12.1111)
  line L1 (6.5691, 12.1111) -> (0, 12.1111)
  line L2 (0, 12.1111) -> (0, 20.9612) projected
  line L3 (0, 12.1111) -> (0, 20.9612)
  line L4 (5.512, 20.9612) -> (0, 20.9612)
  arc A0 (5.512, 20.9612) -> (5.3976, 15.5783) centre (27.7821, 17.7954) ccw
  line L5 (6.5691, 12.1111) -> (6.1482, 13)
  arc A1 (5.3976, 15.5783) -> (6.1482, 13) centre (8.4638, 15.0726) ccw
  point P0 (0, 0)
ref_plane "Work Plane15" through (6.63, 0, 0) normal (1, 0, 0) x (0, 0, -1)
sketch "Sketch68" plane through (6.63, 0, 0) normal (1, 0, 0) x (0, 0, -1)
  arc A0 (14, 22) -> (14, 11) centre (62.4766, 16.5) ccw
  arc A1 (14, 11) -> (14, 22) centre (11.848, 16.5) ccw
  arc A2 (14, 10) -> (21.6289, 12) centre (11.8491, 33.7543) ccw
  arc A3 (13, 15) -> (14, 10) centre (21, 14) ccw
  arc A4 (21.6289, 12) -> (13, 15) centre (14.4695, 5.3172) ccw
  arc A5 (-21.5884, 12.1111) -> (-13.1641, 12.1459) centre (-17.4061, 19.3527) ccw
  arc A6 (-13.1641, 12.1459) -> (-21.5884, 12.1111) centre (-17.3607, 8.3588) ccw
  arc A7 (-14.3886, 22) -> (-14.4349, 10.6825) centre (-5.1535, 16.3034) ccw
  arc A8 (-14.4349, 10.6825) -> (-14.3886, 22) centre (-35.9078, 16.429) ccw
  point P0 (0, 0)
sketch "Sketch69" plane through (0, 0, 0) normal (1, 0, 0) x (0, 1, 0)
  arc A0 (-3, -7.5651) -> (11.0179, -2.9788) centre (0.2424, 6.2404) ccw
  line L0 (-3, -7.5651) -> (-3, -6.6289)
  line L1 (11.0179, -2.9788) -> (11.0179, -1.943)
  arc A1 (11.0179, -1.943) -> (10.1452, -2.6581) centre (12.4245, -4.5498) ccw
  arc A2 (-3, -6.6289) -> (10.1452, -2.6581) centre (0.5731, 5.2863) ccw
  line L2 (-8.9035, 0) -> (17, 0) construction
  arc A3 (11.0179, 2.9788) -> (-3, 7.5651) centre (0.2424, -6.2404) ccw
  line L3 (-3, 7.5651) -> (-3, 6.6289)
  line L4 (11.0179, 2.9788) -> (11.0179, 1.943)
  arc A4 (10.1452, 2.6581) -> (11.0179, 1.943) centre (12.4245, 4.5498) ccw
  arc A5 (10.1452, 2.6581) -> (-3, 6.6289) centre (0.5731, -5.2863) ccw
  point P0 (0, 0)
  point P1 (6.0475, -5.8837)
sketch "Sketch70" plane through (0, 0, 0) normal (0, 0, 1) x (1, 0, 0)
  arc A0 (4, -3) -> (7.812, 5.972) centre (-6.9875, 6.9641) ccw
  arc A1 (4, -3) -> (8, -3) centre (6, 0.2231) ccw
  arc A2 (8, -3) -> (7.812, 5.972) centre (-95.4852, -0.6804) ccw
  arc A3 (7.8, 6.0475) -> (6.9938, 11.0179) centre (-4.9894, 6.5238) ccw
  arc A4 (7.8, 6.0475) -> (6.9938, 11.0179) centre (7.8859, 8.612) ccw
  arc A5 (3.0655, -3) -> (5.6658, 12.1111) centre (-16.4907, 8.1445) ccw
  line L0 (3.0655, -3) -> (4, -3) projected
  arc A6 (5.6658, 12.1111) -> (3.0655, -3) centre (0.9123, 5.1498) ccw
sketch "Sketch71" plane through (0, 0, 0) normal (0, 0, 1) x (1, 0, 0)
  line L0 (21.3234, 1.813) -> (-3.8328, 3.9894)
  line L1 (6.7281, 29.5792) -> (31.9548, 41.3881)
  line L2 (2.1762, -23.0341) -> (25, -39)
  line L3 (2.1762, -23.0341) -> (2.3639, -21.5054)
  line L4 (2.3639, -21.5054) -> (3.7434, -22.1348)
  line L5 (3.7434, -22.1348) -> (4.2532, -20)
  line L6 (4.2532, -20) -> (3.0537, -20.1909)
  line L7 (3.0537, -20.1909) -> (3, -18)
  line L8 (3, -18) -> (6, -19)
  line L9 (6, -19) -> (5.7028, -22.6912)
  line L10 (5.7028, -22.6912) -> (25, -36)
  line L11 (25, -39) -> (25, -36)
  line L12 (6.7281, 29.5792) -> (6.7281, 28.625)
  line L13 (6.7281, 28.625) -> (8.2975, 28.625)
  line L14 (8.2975, 28.625) -> (8.7453, 26.5871)
  line L15 (8.7453, 26.5871) -> (6.7281, 26.5871)
  line L16 (6.7281, 26.5871) -> (6.7281, 25.1274)
  line L17 (6.7281, 25.1274) -> (9.7835, 25.1274)
  line L18 (9.7835, 25.1274) -> (9.4996, 29.1021)
  line L19 (9.4996, 29.1021) -> (31.9548, 38.8479)
  line L20 (31.9548, 41.3881) -> (31.9548, 38.8479)
  point P0 (0, 0)
revolve "Revolution6" add sketch "Sketch71" angle 180 mid plane about axis through (21.3234, 1.813, 0) along (-0.9963, 0.0862, 0) contours L3 L4 L5 L6 L7 L8 L9 L10 L11 L2
sketch "Sketch72" plane through (4.4522, 3.2726, 26.4049) normal (0.0862, 0.9963, 0) x (0.8625, -0.0746, 0.5004)
  line L0 (-12.5937, -66.7439) -> (-17, -59)
  line L1 (-17, -59) -> (-17.8581, -59.4882)
  line L2 (-13.4518, -67.2321) -> (-17.8581, -59.4882)
  line L3 (-12.5937, -66.7439) -> (-13.4518, -67.2321)
  line L4 (44, 0) -> (-31.509, 0) construction
  line L5 (25.9097, 0.7097) -> (25.9087, 1.7063)
  line L6 (25.9087, 1.7063) -> (16.999, 1.6471)
  line L7 (25.9097, 0.7097) -> (17, 0.7097)
  line L8 (17, 0.7097) -> (16.999, 1.6471)
  line L9 (-12.5937, 66.7439) -> (-13.4518, 67.2321)
  line L10 (-12.5937, 66.7439) -> (-17, 59)
  line L11 (-13.4518, 67.2321) -> (-17.8581, 59.4882)
  line L12 (-17, 59) -> (-17.8581, 59.4882)
  line L13 (26.1342, 2.4582) -> (2.6931, 2.3024) projected
  point P0 (-16.8102, 20.782)
extrude "Extrusion58" cut sketch "Sketch72" against normal blind 3 contours L7 L8 L6 L5 | L10 L12 L11 L9
properties part number "cSkull_meso_WOK_tall_VIS_rt"
